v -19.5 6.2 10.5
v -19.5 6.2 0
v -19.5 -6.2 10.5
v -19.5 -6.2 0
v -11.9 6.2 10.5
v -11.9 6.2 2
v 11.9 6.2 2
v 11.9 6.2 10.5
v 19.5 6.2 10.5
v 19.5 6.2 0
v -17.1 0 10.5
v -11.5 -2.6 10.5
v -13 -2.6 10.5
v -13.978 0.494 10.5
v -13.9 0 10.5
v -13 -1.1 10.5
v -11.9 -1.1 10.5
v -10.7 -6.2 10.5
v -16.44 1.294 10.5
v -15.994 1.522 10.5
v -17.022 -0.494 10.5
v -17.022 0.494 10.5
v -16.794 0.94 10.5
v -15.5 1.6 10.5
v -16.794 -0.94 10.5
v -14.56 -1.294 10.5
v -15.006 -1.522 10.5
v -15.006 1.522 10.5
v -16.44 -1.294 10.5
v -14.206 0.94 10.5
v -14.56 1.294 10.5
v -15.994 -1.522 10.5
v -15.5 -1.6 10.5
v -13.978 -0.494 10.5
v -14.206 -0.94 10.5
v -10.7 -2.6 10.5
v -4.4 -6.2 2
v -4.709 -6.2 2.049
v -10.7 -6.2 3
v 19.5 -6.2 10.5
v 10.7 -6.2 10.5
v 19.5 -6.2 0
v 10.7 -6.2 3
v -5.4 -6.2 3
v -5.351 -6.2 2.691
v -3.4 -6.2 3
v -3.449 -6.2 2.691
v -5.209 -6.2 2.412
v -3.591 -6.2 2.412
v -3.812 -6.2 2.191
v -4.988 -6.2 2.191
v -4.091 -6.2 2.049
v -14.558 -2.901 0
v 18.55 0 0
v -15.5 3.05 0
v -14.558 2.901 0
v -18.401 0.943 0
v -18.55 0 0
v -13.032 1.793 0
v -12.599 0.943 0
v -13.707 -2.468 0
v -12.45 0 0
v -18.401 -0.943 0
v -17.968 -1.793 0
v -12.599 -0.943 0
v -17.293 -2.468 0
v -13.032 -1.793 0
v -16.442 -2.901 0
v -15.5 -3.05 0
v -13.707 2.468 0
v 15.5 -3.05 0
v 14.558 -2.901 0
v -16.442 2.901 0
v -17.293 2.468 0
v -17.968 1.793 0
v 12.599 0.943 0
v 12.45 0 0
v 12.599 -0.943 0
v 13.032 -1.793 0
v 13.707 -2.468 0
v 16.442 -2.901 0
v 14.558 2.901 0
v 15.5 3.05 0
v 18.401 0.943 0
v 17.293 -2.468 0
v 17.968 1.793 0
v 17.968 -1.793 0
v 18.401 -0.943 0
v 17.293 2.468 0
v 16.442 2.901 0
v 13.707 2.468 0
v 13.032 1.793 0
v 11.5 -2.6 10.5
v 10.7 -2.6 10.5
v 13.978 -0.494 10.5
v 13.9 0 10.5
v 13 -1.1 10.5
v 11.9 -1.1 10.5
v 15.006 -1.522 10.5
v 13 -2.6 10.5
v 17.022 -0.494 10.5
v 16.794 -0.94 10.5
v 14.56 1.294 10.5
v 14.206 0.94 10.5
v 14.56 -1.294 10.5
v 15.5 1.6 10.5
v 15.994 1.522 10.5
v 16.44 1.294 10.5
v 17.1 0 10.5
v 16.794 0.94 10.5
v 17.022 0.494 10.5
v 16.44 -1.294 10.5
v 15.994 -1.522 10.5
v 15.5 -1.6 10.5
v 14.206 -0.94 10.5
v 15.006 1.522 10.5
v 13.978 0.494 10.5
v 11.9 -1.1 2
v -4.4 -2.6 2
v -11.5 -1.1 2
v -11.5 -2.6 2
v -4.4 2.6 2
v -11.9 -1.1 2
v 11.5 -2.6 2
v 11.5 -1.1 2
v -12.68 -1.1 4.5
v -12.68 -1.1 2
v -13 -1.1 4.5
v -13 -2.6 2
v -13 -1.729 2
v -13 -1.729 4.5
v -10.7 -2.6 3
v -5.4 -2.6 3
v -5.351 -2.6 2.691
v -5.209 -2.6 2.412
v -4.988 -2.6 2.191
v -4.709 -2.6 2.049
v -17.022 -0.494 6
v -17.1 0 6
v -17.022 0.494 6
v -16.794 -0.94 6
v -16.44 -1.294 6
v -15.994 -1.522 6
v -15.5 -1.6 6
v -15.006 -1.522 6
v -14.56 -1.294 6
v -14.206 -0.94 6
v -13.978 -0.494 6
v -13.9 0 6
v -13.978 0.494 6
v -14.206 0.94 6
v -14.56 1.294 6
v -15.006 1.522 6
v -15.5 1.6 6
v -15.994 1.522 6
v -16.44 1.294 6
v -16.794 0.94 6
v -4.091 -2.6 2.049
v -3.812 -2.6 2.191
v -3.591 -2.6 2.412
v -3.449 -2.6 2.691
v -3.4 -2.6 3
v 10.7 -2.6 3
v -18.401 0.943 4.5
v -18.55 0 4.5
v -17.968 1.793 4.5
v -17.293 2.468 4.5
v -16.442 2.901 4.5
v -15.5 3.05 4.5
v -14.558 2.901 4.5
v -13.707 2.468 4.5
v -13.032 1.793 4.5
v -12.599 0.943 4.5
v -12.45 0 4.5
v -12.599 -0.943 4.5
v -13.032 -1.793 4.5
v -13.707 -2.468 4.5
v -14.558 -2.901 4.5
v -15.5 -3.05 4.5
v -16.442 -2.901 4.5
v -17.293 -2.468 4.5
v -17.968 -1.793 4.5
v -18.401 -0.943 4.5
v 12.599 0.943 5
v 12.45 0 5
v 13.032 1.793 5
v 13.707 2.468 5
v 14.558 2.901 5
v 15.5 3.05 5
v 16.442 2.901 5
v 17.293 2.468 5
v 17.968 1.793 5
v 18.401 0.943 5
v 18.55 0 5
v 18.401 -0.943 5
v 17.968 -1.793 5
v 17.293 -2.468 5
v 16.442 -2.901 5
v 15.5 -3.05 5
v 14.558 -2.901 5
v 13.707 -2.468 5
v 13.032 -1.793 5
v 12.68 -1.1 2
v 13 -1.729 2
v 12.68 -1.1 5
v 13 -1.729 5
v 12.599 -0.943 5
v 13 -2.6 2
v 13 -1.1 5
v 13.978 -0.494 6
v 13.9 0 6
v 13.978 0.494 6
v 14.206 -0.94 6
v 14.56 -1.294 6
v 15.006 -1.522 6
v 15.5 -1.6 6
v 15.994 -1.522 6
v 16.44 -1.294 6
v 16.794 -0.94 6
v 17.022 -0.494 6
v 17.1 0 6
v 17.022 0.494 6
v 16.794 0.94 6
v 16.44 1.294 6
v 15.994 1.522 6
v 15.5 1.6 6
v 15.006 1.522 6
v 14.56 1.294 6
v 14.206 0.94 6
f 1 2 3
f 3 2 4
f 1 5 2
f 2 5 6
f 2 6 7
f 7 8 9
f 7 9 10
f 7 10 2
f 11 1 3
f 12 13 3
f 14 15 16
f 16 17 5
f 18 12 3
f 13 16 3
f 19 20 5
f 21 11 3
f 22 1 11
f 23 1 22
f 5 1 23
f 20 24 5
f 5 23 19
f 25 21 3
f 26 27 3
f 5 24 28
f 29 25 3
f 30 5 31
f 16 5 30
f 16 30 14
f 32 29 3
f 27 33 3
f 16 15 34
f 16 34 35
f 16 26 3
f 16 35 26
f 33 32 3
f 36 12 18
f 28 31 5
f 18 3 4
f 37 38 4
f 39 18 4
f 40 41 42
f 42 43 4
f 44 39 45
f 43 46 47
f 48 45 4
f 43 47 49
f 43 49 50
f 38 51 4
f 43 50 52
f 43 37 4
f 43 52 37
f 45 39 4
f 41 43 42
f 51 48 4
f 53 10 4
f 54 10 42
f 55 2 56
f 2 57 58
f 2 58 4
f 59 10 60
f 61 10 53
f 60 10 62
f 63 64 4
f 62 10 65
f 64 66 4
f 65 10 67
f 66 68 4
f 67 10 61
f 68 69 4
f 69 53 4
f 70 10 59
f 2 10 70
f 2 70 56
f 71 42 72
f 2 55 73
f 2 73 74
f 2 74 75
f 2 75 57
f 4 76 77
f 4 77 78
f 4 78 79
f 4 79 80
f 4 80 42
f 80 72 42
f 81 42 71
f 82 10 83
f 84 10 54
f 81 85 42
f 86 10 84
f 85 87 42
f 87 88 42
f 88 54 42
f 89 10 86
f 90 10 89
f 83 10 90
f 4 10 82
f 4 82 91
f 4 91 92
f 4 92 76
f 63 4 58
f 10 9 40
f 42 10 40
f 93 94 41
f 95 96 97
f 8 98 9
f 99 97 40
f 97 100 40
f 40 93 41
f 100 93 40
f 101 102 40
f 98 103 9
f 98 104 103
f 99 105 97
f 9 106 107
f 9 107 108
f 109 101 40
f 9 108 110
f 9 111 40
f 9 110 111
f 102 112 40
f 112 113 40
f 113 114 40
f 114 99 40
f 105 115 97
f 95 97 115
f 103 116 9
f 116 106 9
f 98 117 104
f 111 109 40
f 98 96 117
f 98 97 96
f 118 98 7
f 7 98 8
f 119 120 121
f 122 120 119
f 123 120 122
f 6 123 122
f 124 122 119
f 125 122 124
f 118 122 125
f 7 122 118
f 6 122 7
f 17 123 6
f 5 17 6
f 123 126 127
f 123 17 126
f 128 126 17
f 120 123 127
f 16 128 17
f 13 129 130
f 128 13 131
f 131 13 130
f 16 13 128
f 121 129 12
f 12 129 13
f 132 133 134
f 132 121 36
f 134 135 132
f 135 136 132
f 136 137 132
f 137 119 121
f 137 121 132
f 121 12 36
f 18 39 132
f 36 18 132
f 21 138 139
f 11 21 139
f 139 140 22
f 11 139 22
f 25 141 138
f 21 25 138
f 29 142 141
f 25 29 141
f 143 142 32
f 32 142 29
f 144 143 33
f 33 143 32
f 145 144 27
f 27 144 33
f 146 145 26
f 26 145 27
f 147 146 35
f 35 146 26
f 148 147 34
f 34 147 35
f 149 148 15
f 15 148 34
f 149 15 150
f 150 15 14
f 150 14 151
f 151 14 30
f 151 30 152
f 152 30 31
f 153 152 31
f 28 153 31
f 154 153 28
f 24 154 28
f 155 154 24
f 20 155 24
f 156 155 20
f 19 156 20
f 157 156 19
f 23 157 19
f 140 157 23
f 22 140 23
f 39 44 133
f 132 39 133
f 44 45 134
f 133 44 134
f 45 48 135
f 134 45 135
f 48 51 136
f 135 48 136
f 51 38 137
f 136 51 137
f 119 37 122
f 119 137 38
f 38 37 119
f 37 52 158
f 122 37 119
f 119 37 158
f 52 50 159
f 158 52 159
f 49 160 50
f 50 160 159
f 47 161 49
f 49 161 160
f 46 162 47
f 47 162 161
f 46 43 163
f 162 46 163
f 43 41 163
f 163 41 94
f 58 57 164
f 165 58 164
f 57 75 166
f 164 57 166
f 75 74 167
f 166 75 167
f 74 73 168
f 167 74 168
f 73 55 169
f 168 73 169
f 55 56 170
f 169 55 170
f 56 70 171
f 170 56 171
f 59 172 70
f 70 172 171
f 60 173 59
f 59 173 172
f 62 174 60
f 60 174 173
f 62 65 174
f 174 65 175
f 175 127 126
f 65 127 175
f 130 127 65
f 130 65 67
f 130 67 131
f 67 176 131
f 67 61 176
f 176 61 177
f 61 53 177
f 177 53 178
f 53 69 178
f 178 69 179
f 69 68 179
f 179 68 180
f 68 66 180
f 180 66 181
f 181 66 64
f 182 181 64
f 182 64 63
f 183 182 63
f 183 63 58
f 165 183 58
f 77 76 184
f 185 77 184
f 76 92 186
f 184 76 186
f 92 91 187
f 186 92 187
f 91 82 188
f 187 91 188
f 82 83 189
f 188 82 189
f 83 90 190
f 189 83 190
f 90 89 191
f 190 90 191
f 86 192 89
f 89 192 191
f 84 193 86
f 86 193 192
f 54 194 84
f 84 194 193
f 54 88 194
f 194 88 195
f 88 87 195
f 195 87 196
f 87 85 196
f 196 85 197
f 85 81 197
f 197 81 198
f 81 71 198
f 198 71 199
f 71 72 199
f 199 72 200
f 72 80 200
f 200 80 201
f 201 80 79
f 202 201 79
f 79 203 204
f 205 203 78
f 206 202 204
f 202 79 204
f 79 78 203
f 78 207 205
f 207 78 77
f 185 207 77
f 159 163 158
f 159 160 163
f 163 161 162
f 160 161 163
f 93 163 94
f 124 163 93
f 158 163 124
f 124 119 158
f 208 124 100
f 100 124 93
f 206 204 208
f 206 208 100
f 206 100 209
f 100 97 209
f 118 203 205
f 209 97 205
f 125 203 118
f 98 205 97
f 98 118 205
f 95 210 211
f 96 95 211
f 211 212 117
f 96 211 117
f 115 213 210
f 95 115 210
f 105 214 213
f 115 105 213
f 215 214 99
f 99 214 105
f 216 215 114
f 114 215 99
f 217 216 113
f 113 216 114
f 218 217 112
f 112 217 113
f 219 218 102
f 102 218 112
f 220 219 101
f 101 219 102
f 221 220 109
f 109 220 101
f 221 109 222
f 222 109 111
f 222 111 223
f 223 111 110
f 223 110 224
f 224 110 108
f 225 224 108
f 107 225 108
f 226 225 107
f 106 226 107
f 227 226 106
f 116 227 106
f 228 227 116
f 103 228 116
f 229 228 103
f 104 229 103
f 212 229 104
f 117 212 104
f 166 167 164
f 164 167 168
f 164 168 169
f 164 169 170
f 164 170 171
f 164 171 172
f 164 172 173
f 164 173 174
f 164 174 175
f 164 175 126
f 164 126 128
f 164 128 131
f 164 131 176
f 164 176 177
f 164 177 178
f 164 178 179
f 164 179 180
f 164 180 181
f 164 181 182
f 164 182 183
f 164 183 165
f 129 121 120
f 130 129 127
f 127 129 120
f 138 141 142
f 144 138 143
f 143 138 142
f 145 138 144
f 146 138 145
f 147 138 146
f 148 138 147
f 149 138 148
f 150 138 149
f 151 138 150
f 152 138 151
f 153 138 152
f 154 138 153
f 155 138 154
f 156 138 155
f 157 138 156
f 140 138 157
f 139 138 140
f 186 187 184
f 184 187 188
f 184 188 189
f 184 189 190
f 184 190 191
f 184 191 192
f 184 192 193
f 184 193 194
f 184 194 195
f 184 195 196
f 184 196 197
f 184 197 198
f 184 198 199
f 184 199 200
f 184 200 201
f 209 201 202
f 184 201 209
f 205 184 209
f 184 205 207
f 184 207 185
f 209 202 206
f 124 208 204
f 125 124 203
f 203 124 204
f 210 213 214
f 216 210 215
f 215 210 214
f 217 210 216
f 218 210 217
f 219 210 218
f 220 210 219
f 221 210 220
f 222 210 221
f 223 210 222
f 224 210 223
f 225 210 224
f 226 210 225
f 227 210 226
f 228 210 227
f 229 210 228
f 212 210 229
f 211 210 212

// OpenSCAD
x=39;
x2=23.8;
y=12.4;
z=31;
h=2;
h2=8.5;
x3=1.5;
dw=6.5;
y3=1.0;
z2=h+h2;
d1=3.2;
d2=2.5;
y4=7;
d3=6.1;
z3=5;
delta=0.5;
$fn=20;

dy=8.3;
dx=7.5;


translate([0,0,z2])rotate([180,0,0])
difference() {
	translate([0,0,h/2])
	difference() {
		translate([0,0,h2/2])cube([x,y,z2],true);
		translate([0,dy,(h2-h)/2-.1-1])cube([x2-2.4,y+1,h2+.2],true);
		translate([0,dy-y,(h2-h)/2-.1])cube([x2,y+1,h2+.2],true);
		translate([dx-x2/2,y,z2-h/2-3])rotate([90,0,0])cylinder(r=1,h=15);
	}
	translate([-z/2,0,-0.5]) {
		cylinder(z2-z3-0.5,r=d1/2);
		translate([0,0,z2-4])cylinder(h=z3,r=d3/2);
	}
	translate([z/2,0,-0.5]) {
		cylinder(z2-z3-0.5,r=d1/2);translate([0,0,z2+0.5-z3])cylinder(13,r=d3/2);
	}
	translate([x/2-dw-x3,dy-y+5.2,-h-delta])cube([x3,y3+delta,z2+delta]);
	translate([-x/2+dw,dy-y+5.2,-h-delta])cube([x3,y3+delta,z2+delta]);
/*	translate([x2/2-d2/2,y/2-y3-y4,0]) {
		cylinder(r=d2/2,h=z2+delta);
		translate([0,-d2,z2/2])cube([d2,2*d2,z2+delta],true);
	}
	translate([-x2/2+d2/2,y/2-y3-y4,0]) {
		cylinder(r=d2/2,h=z2+delta);
		translate([0,-d2,z2/2])cube([d2,2*d2,z2+delta],true);
	}*/
}
